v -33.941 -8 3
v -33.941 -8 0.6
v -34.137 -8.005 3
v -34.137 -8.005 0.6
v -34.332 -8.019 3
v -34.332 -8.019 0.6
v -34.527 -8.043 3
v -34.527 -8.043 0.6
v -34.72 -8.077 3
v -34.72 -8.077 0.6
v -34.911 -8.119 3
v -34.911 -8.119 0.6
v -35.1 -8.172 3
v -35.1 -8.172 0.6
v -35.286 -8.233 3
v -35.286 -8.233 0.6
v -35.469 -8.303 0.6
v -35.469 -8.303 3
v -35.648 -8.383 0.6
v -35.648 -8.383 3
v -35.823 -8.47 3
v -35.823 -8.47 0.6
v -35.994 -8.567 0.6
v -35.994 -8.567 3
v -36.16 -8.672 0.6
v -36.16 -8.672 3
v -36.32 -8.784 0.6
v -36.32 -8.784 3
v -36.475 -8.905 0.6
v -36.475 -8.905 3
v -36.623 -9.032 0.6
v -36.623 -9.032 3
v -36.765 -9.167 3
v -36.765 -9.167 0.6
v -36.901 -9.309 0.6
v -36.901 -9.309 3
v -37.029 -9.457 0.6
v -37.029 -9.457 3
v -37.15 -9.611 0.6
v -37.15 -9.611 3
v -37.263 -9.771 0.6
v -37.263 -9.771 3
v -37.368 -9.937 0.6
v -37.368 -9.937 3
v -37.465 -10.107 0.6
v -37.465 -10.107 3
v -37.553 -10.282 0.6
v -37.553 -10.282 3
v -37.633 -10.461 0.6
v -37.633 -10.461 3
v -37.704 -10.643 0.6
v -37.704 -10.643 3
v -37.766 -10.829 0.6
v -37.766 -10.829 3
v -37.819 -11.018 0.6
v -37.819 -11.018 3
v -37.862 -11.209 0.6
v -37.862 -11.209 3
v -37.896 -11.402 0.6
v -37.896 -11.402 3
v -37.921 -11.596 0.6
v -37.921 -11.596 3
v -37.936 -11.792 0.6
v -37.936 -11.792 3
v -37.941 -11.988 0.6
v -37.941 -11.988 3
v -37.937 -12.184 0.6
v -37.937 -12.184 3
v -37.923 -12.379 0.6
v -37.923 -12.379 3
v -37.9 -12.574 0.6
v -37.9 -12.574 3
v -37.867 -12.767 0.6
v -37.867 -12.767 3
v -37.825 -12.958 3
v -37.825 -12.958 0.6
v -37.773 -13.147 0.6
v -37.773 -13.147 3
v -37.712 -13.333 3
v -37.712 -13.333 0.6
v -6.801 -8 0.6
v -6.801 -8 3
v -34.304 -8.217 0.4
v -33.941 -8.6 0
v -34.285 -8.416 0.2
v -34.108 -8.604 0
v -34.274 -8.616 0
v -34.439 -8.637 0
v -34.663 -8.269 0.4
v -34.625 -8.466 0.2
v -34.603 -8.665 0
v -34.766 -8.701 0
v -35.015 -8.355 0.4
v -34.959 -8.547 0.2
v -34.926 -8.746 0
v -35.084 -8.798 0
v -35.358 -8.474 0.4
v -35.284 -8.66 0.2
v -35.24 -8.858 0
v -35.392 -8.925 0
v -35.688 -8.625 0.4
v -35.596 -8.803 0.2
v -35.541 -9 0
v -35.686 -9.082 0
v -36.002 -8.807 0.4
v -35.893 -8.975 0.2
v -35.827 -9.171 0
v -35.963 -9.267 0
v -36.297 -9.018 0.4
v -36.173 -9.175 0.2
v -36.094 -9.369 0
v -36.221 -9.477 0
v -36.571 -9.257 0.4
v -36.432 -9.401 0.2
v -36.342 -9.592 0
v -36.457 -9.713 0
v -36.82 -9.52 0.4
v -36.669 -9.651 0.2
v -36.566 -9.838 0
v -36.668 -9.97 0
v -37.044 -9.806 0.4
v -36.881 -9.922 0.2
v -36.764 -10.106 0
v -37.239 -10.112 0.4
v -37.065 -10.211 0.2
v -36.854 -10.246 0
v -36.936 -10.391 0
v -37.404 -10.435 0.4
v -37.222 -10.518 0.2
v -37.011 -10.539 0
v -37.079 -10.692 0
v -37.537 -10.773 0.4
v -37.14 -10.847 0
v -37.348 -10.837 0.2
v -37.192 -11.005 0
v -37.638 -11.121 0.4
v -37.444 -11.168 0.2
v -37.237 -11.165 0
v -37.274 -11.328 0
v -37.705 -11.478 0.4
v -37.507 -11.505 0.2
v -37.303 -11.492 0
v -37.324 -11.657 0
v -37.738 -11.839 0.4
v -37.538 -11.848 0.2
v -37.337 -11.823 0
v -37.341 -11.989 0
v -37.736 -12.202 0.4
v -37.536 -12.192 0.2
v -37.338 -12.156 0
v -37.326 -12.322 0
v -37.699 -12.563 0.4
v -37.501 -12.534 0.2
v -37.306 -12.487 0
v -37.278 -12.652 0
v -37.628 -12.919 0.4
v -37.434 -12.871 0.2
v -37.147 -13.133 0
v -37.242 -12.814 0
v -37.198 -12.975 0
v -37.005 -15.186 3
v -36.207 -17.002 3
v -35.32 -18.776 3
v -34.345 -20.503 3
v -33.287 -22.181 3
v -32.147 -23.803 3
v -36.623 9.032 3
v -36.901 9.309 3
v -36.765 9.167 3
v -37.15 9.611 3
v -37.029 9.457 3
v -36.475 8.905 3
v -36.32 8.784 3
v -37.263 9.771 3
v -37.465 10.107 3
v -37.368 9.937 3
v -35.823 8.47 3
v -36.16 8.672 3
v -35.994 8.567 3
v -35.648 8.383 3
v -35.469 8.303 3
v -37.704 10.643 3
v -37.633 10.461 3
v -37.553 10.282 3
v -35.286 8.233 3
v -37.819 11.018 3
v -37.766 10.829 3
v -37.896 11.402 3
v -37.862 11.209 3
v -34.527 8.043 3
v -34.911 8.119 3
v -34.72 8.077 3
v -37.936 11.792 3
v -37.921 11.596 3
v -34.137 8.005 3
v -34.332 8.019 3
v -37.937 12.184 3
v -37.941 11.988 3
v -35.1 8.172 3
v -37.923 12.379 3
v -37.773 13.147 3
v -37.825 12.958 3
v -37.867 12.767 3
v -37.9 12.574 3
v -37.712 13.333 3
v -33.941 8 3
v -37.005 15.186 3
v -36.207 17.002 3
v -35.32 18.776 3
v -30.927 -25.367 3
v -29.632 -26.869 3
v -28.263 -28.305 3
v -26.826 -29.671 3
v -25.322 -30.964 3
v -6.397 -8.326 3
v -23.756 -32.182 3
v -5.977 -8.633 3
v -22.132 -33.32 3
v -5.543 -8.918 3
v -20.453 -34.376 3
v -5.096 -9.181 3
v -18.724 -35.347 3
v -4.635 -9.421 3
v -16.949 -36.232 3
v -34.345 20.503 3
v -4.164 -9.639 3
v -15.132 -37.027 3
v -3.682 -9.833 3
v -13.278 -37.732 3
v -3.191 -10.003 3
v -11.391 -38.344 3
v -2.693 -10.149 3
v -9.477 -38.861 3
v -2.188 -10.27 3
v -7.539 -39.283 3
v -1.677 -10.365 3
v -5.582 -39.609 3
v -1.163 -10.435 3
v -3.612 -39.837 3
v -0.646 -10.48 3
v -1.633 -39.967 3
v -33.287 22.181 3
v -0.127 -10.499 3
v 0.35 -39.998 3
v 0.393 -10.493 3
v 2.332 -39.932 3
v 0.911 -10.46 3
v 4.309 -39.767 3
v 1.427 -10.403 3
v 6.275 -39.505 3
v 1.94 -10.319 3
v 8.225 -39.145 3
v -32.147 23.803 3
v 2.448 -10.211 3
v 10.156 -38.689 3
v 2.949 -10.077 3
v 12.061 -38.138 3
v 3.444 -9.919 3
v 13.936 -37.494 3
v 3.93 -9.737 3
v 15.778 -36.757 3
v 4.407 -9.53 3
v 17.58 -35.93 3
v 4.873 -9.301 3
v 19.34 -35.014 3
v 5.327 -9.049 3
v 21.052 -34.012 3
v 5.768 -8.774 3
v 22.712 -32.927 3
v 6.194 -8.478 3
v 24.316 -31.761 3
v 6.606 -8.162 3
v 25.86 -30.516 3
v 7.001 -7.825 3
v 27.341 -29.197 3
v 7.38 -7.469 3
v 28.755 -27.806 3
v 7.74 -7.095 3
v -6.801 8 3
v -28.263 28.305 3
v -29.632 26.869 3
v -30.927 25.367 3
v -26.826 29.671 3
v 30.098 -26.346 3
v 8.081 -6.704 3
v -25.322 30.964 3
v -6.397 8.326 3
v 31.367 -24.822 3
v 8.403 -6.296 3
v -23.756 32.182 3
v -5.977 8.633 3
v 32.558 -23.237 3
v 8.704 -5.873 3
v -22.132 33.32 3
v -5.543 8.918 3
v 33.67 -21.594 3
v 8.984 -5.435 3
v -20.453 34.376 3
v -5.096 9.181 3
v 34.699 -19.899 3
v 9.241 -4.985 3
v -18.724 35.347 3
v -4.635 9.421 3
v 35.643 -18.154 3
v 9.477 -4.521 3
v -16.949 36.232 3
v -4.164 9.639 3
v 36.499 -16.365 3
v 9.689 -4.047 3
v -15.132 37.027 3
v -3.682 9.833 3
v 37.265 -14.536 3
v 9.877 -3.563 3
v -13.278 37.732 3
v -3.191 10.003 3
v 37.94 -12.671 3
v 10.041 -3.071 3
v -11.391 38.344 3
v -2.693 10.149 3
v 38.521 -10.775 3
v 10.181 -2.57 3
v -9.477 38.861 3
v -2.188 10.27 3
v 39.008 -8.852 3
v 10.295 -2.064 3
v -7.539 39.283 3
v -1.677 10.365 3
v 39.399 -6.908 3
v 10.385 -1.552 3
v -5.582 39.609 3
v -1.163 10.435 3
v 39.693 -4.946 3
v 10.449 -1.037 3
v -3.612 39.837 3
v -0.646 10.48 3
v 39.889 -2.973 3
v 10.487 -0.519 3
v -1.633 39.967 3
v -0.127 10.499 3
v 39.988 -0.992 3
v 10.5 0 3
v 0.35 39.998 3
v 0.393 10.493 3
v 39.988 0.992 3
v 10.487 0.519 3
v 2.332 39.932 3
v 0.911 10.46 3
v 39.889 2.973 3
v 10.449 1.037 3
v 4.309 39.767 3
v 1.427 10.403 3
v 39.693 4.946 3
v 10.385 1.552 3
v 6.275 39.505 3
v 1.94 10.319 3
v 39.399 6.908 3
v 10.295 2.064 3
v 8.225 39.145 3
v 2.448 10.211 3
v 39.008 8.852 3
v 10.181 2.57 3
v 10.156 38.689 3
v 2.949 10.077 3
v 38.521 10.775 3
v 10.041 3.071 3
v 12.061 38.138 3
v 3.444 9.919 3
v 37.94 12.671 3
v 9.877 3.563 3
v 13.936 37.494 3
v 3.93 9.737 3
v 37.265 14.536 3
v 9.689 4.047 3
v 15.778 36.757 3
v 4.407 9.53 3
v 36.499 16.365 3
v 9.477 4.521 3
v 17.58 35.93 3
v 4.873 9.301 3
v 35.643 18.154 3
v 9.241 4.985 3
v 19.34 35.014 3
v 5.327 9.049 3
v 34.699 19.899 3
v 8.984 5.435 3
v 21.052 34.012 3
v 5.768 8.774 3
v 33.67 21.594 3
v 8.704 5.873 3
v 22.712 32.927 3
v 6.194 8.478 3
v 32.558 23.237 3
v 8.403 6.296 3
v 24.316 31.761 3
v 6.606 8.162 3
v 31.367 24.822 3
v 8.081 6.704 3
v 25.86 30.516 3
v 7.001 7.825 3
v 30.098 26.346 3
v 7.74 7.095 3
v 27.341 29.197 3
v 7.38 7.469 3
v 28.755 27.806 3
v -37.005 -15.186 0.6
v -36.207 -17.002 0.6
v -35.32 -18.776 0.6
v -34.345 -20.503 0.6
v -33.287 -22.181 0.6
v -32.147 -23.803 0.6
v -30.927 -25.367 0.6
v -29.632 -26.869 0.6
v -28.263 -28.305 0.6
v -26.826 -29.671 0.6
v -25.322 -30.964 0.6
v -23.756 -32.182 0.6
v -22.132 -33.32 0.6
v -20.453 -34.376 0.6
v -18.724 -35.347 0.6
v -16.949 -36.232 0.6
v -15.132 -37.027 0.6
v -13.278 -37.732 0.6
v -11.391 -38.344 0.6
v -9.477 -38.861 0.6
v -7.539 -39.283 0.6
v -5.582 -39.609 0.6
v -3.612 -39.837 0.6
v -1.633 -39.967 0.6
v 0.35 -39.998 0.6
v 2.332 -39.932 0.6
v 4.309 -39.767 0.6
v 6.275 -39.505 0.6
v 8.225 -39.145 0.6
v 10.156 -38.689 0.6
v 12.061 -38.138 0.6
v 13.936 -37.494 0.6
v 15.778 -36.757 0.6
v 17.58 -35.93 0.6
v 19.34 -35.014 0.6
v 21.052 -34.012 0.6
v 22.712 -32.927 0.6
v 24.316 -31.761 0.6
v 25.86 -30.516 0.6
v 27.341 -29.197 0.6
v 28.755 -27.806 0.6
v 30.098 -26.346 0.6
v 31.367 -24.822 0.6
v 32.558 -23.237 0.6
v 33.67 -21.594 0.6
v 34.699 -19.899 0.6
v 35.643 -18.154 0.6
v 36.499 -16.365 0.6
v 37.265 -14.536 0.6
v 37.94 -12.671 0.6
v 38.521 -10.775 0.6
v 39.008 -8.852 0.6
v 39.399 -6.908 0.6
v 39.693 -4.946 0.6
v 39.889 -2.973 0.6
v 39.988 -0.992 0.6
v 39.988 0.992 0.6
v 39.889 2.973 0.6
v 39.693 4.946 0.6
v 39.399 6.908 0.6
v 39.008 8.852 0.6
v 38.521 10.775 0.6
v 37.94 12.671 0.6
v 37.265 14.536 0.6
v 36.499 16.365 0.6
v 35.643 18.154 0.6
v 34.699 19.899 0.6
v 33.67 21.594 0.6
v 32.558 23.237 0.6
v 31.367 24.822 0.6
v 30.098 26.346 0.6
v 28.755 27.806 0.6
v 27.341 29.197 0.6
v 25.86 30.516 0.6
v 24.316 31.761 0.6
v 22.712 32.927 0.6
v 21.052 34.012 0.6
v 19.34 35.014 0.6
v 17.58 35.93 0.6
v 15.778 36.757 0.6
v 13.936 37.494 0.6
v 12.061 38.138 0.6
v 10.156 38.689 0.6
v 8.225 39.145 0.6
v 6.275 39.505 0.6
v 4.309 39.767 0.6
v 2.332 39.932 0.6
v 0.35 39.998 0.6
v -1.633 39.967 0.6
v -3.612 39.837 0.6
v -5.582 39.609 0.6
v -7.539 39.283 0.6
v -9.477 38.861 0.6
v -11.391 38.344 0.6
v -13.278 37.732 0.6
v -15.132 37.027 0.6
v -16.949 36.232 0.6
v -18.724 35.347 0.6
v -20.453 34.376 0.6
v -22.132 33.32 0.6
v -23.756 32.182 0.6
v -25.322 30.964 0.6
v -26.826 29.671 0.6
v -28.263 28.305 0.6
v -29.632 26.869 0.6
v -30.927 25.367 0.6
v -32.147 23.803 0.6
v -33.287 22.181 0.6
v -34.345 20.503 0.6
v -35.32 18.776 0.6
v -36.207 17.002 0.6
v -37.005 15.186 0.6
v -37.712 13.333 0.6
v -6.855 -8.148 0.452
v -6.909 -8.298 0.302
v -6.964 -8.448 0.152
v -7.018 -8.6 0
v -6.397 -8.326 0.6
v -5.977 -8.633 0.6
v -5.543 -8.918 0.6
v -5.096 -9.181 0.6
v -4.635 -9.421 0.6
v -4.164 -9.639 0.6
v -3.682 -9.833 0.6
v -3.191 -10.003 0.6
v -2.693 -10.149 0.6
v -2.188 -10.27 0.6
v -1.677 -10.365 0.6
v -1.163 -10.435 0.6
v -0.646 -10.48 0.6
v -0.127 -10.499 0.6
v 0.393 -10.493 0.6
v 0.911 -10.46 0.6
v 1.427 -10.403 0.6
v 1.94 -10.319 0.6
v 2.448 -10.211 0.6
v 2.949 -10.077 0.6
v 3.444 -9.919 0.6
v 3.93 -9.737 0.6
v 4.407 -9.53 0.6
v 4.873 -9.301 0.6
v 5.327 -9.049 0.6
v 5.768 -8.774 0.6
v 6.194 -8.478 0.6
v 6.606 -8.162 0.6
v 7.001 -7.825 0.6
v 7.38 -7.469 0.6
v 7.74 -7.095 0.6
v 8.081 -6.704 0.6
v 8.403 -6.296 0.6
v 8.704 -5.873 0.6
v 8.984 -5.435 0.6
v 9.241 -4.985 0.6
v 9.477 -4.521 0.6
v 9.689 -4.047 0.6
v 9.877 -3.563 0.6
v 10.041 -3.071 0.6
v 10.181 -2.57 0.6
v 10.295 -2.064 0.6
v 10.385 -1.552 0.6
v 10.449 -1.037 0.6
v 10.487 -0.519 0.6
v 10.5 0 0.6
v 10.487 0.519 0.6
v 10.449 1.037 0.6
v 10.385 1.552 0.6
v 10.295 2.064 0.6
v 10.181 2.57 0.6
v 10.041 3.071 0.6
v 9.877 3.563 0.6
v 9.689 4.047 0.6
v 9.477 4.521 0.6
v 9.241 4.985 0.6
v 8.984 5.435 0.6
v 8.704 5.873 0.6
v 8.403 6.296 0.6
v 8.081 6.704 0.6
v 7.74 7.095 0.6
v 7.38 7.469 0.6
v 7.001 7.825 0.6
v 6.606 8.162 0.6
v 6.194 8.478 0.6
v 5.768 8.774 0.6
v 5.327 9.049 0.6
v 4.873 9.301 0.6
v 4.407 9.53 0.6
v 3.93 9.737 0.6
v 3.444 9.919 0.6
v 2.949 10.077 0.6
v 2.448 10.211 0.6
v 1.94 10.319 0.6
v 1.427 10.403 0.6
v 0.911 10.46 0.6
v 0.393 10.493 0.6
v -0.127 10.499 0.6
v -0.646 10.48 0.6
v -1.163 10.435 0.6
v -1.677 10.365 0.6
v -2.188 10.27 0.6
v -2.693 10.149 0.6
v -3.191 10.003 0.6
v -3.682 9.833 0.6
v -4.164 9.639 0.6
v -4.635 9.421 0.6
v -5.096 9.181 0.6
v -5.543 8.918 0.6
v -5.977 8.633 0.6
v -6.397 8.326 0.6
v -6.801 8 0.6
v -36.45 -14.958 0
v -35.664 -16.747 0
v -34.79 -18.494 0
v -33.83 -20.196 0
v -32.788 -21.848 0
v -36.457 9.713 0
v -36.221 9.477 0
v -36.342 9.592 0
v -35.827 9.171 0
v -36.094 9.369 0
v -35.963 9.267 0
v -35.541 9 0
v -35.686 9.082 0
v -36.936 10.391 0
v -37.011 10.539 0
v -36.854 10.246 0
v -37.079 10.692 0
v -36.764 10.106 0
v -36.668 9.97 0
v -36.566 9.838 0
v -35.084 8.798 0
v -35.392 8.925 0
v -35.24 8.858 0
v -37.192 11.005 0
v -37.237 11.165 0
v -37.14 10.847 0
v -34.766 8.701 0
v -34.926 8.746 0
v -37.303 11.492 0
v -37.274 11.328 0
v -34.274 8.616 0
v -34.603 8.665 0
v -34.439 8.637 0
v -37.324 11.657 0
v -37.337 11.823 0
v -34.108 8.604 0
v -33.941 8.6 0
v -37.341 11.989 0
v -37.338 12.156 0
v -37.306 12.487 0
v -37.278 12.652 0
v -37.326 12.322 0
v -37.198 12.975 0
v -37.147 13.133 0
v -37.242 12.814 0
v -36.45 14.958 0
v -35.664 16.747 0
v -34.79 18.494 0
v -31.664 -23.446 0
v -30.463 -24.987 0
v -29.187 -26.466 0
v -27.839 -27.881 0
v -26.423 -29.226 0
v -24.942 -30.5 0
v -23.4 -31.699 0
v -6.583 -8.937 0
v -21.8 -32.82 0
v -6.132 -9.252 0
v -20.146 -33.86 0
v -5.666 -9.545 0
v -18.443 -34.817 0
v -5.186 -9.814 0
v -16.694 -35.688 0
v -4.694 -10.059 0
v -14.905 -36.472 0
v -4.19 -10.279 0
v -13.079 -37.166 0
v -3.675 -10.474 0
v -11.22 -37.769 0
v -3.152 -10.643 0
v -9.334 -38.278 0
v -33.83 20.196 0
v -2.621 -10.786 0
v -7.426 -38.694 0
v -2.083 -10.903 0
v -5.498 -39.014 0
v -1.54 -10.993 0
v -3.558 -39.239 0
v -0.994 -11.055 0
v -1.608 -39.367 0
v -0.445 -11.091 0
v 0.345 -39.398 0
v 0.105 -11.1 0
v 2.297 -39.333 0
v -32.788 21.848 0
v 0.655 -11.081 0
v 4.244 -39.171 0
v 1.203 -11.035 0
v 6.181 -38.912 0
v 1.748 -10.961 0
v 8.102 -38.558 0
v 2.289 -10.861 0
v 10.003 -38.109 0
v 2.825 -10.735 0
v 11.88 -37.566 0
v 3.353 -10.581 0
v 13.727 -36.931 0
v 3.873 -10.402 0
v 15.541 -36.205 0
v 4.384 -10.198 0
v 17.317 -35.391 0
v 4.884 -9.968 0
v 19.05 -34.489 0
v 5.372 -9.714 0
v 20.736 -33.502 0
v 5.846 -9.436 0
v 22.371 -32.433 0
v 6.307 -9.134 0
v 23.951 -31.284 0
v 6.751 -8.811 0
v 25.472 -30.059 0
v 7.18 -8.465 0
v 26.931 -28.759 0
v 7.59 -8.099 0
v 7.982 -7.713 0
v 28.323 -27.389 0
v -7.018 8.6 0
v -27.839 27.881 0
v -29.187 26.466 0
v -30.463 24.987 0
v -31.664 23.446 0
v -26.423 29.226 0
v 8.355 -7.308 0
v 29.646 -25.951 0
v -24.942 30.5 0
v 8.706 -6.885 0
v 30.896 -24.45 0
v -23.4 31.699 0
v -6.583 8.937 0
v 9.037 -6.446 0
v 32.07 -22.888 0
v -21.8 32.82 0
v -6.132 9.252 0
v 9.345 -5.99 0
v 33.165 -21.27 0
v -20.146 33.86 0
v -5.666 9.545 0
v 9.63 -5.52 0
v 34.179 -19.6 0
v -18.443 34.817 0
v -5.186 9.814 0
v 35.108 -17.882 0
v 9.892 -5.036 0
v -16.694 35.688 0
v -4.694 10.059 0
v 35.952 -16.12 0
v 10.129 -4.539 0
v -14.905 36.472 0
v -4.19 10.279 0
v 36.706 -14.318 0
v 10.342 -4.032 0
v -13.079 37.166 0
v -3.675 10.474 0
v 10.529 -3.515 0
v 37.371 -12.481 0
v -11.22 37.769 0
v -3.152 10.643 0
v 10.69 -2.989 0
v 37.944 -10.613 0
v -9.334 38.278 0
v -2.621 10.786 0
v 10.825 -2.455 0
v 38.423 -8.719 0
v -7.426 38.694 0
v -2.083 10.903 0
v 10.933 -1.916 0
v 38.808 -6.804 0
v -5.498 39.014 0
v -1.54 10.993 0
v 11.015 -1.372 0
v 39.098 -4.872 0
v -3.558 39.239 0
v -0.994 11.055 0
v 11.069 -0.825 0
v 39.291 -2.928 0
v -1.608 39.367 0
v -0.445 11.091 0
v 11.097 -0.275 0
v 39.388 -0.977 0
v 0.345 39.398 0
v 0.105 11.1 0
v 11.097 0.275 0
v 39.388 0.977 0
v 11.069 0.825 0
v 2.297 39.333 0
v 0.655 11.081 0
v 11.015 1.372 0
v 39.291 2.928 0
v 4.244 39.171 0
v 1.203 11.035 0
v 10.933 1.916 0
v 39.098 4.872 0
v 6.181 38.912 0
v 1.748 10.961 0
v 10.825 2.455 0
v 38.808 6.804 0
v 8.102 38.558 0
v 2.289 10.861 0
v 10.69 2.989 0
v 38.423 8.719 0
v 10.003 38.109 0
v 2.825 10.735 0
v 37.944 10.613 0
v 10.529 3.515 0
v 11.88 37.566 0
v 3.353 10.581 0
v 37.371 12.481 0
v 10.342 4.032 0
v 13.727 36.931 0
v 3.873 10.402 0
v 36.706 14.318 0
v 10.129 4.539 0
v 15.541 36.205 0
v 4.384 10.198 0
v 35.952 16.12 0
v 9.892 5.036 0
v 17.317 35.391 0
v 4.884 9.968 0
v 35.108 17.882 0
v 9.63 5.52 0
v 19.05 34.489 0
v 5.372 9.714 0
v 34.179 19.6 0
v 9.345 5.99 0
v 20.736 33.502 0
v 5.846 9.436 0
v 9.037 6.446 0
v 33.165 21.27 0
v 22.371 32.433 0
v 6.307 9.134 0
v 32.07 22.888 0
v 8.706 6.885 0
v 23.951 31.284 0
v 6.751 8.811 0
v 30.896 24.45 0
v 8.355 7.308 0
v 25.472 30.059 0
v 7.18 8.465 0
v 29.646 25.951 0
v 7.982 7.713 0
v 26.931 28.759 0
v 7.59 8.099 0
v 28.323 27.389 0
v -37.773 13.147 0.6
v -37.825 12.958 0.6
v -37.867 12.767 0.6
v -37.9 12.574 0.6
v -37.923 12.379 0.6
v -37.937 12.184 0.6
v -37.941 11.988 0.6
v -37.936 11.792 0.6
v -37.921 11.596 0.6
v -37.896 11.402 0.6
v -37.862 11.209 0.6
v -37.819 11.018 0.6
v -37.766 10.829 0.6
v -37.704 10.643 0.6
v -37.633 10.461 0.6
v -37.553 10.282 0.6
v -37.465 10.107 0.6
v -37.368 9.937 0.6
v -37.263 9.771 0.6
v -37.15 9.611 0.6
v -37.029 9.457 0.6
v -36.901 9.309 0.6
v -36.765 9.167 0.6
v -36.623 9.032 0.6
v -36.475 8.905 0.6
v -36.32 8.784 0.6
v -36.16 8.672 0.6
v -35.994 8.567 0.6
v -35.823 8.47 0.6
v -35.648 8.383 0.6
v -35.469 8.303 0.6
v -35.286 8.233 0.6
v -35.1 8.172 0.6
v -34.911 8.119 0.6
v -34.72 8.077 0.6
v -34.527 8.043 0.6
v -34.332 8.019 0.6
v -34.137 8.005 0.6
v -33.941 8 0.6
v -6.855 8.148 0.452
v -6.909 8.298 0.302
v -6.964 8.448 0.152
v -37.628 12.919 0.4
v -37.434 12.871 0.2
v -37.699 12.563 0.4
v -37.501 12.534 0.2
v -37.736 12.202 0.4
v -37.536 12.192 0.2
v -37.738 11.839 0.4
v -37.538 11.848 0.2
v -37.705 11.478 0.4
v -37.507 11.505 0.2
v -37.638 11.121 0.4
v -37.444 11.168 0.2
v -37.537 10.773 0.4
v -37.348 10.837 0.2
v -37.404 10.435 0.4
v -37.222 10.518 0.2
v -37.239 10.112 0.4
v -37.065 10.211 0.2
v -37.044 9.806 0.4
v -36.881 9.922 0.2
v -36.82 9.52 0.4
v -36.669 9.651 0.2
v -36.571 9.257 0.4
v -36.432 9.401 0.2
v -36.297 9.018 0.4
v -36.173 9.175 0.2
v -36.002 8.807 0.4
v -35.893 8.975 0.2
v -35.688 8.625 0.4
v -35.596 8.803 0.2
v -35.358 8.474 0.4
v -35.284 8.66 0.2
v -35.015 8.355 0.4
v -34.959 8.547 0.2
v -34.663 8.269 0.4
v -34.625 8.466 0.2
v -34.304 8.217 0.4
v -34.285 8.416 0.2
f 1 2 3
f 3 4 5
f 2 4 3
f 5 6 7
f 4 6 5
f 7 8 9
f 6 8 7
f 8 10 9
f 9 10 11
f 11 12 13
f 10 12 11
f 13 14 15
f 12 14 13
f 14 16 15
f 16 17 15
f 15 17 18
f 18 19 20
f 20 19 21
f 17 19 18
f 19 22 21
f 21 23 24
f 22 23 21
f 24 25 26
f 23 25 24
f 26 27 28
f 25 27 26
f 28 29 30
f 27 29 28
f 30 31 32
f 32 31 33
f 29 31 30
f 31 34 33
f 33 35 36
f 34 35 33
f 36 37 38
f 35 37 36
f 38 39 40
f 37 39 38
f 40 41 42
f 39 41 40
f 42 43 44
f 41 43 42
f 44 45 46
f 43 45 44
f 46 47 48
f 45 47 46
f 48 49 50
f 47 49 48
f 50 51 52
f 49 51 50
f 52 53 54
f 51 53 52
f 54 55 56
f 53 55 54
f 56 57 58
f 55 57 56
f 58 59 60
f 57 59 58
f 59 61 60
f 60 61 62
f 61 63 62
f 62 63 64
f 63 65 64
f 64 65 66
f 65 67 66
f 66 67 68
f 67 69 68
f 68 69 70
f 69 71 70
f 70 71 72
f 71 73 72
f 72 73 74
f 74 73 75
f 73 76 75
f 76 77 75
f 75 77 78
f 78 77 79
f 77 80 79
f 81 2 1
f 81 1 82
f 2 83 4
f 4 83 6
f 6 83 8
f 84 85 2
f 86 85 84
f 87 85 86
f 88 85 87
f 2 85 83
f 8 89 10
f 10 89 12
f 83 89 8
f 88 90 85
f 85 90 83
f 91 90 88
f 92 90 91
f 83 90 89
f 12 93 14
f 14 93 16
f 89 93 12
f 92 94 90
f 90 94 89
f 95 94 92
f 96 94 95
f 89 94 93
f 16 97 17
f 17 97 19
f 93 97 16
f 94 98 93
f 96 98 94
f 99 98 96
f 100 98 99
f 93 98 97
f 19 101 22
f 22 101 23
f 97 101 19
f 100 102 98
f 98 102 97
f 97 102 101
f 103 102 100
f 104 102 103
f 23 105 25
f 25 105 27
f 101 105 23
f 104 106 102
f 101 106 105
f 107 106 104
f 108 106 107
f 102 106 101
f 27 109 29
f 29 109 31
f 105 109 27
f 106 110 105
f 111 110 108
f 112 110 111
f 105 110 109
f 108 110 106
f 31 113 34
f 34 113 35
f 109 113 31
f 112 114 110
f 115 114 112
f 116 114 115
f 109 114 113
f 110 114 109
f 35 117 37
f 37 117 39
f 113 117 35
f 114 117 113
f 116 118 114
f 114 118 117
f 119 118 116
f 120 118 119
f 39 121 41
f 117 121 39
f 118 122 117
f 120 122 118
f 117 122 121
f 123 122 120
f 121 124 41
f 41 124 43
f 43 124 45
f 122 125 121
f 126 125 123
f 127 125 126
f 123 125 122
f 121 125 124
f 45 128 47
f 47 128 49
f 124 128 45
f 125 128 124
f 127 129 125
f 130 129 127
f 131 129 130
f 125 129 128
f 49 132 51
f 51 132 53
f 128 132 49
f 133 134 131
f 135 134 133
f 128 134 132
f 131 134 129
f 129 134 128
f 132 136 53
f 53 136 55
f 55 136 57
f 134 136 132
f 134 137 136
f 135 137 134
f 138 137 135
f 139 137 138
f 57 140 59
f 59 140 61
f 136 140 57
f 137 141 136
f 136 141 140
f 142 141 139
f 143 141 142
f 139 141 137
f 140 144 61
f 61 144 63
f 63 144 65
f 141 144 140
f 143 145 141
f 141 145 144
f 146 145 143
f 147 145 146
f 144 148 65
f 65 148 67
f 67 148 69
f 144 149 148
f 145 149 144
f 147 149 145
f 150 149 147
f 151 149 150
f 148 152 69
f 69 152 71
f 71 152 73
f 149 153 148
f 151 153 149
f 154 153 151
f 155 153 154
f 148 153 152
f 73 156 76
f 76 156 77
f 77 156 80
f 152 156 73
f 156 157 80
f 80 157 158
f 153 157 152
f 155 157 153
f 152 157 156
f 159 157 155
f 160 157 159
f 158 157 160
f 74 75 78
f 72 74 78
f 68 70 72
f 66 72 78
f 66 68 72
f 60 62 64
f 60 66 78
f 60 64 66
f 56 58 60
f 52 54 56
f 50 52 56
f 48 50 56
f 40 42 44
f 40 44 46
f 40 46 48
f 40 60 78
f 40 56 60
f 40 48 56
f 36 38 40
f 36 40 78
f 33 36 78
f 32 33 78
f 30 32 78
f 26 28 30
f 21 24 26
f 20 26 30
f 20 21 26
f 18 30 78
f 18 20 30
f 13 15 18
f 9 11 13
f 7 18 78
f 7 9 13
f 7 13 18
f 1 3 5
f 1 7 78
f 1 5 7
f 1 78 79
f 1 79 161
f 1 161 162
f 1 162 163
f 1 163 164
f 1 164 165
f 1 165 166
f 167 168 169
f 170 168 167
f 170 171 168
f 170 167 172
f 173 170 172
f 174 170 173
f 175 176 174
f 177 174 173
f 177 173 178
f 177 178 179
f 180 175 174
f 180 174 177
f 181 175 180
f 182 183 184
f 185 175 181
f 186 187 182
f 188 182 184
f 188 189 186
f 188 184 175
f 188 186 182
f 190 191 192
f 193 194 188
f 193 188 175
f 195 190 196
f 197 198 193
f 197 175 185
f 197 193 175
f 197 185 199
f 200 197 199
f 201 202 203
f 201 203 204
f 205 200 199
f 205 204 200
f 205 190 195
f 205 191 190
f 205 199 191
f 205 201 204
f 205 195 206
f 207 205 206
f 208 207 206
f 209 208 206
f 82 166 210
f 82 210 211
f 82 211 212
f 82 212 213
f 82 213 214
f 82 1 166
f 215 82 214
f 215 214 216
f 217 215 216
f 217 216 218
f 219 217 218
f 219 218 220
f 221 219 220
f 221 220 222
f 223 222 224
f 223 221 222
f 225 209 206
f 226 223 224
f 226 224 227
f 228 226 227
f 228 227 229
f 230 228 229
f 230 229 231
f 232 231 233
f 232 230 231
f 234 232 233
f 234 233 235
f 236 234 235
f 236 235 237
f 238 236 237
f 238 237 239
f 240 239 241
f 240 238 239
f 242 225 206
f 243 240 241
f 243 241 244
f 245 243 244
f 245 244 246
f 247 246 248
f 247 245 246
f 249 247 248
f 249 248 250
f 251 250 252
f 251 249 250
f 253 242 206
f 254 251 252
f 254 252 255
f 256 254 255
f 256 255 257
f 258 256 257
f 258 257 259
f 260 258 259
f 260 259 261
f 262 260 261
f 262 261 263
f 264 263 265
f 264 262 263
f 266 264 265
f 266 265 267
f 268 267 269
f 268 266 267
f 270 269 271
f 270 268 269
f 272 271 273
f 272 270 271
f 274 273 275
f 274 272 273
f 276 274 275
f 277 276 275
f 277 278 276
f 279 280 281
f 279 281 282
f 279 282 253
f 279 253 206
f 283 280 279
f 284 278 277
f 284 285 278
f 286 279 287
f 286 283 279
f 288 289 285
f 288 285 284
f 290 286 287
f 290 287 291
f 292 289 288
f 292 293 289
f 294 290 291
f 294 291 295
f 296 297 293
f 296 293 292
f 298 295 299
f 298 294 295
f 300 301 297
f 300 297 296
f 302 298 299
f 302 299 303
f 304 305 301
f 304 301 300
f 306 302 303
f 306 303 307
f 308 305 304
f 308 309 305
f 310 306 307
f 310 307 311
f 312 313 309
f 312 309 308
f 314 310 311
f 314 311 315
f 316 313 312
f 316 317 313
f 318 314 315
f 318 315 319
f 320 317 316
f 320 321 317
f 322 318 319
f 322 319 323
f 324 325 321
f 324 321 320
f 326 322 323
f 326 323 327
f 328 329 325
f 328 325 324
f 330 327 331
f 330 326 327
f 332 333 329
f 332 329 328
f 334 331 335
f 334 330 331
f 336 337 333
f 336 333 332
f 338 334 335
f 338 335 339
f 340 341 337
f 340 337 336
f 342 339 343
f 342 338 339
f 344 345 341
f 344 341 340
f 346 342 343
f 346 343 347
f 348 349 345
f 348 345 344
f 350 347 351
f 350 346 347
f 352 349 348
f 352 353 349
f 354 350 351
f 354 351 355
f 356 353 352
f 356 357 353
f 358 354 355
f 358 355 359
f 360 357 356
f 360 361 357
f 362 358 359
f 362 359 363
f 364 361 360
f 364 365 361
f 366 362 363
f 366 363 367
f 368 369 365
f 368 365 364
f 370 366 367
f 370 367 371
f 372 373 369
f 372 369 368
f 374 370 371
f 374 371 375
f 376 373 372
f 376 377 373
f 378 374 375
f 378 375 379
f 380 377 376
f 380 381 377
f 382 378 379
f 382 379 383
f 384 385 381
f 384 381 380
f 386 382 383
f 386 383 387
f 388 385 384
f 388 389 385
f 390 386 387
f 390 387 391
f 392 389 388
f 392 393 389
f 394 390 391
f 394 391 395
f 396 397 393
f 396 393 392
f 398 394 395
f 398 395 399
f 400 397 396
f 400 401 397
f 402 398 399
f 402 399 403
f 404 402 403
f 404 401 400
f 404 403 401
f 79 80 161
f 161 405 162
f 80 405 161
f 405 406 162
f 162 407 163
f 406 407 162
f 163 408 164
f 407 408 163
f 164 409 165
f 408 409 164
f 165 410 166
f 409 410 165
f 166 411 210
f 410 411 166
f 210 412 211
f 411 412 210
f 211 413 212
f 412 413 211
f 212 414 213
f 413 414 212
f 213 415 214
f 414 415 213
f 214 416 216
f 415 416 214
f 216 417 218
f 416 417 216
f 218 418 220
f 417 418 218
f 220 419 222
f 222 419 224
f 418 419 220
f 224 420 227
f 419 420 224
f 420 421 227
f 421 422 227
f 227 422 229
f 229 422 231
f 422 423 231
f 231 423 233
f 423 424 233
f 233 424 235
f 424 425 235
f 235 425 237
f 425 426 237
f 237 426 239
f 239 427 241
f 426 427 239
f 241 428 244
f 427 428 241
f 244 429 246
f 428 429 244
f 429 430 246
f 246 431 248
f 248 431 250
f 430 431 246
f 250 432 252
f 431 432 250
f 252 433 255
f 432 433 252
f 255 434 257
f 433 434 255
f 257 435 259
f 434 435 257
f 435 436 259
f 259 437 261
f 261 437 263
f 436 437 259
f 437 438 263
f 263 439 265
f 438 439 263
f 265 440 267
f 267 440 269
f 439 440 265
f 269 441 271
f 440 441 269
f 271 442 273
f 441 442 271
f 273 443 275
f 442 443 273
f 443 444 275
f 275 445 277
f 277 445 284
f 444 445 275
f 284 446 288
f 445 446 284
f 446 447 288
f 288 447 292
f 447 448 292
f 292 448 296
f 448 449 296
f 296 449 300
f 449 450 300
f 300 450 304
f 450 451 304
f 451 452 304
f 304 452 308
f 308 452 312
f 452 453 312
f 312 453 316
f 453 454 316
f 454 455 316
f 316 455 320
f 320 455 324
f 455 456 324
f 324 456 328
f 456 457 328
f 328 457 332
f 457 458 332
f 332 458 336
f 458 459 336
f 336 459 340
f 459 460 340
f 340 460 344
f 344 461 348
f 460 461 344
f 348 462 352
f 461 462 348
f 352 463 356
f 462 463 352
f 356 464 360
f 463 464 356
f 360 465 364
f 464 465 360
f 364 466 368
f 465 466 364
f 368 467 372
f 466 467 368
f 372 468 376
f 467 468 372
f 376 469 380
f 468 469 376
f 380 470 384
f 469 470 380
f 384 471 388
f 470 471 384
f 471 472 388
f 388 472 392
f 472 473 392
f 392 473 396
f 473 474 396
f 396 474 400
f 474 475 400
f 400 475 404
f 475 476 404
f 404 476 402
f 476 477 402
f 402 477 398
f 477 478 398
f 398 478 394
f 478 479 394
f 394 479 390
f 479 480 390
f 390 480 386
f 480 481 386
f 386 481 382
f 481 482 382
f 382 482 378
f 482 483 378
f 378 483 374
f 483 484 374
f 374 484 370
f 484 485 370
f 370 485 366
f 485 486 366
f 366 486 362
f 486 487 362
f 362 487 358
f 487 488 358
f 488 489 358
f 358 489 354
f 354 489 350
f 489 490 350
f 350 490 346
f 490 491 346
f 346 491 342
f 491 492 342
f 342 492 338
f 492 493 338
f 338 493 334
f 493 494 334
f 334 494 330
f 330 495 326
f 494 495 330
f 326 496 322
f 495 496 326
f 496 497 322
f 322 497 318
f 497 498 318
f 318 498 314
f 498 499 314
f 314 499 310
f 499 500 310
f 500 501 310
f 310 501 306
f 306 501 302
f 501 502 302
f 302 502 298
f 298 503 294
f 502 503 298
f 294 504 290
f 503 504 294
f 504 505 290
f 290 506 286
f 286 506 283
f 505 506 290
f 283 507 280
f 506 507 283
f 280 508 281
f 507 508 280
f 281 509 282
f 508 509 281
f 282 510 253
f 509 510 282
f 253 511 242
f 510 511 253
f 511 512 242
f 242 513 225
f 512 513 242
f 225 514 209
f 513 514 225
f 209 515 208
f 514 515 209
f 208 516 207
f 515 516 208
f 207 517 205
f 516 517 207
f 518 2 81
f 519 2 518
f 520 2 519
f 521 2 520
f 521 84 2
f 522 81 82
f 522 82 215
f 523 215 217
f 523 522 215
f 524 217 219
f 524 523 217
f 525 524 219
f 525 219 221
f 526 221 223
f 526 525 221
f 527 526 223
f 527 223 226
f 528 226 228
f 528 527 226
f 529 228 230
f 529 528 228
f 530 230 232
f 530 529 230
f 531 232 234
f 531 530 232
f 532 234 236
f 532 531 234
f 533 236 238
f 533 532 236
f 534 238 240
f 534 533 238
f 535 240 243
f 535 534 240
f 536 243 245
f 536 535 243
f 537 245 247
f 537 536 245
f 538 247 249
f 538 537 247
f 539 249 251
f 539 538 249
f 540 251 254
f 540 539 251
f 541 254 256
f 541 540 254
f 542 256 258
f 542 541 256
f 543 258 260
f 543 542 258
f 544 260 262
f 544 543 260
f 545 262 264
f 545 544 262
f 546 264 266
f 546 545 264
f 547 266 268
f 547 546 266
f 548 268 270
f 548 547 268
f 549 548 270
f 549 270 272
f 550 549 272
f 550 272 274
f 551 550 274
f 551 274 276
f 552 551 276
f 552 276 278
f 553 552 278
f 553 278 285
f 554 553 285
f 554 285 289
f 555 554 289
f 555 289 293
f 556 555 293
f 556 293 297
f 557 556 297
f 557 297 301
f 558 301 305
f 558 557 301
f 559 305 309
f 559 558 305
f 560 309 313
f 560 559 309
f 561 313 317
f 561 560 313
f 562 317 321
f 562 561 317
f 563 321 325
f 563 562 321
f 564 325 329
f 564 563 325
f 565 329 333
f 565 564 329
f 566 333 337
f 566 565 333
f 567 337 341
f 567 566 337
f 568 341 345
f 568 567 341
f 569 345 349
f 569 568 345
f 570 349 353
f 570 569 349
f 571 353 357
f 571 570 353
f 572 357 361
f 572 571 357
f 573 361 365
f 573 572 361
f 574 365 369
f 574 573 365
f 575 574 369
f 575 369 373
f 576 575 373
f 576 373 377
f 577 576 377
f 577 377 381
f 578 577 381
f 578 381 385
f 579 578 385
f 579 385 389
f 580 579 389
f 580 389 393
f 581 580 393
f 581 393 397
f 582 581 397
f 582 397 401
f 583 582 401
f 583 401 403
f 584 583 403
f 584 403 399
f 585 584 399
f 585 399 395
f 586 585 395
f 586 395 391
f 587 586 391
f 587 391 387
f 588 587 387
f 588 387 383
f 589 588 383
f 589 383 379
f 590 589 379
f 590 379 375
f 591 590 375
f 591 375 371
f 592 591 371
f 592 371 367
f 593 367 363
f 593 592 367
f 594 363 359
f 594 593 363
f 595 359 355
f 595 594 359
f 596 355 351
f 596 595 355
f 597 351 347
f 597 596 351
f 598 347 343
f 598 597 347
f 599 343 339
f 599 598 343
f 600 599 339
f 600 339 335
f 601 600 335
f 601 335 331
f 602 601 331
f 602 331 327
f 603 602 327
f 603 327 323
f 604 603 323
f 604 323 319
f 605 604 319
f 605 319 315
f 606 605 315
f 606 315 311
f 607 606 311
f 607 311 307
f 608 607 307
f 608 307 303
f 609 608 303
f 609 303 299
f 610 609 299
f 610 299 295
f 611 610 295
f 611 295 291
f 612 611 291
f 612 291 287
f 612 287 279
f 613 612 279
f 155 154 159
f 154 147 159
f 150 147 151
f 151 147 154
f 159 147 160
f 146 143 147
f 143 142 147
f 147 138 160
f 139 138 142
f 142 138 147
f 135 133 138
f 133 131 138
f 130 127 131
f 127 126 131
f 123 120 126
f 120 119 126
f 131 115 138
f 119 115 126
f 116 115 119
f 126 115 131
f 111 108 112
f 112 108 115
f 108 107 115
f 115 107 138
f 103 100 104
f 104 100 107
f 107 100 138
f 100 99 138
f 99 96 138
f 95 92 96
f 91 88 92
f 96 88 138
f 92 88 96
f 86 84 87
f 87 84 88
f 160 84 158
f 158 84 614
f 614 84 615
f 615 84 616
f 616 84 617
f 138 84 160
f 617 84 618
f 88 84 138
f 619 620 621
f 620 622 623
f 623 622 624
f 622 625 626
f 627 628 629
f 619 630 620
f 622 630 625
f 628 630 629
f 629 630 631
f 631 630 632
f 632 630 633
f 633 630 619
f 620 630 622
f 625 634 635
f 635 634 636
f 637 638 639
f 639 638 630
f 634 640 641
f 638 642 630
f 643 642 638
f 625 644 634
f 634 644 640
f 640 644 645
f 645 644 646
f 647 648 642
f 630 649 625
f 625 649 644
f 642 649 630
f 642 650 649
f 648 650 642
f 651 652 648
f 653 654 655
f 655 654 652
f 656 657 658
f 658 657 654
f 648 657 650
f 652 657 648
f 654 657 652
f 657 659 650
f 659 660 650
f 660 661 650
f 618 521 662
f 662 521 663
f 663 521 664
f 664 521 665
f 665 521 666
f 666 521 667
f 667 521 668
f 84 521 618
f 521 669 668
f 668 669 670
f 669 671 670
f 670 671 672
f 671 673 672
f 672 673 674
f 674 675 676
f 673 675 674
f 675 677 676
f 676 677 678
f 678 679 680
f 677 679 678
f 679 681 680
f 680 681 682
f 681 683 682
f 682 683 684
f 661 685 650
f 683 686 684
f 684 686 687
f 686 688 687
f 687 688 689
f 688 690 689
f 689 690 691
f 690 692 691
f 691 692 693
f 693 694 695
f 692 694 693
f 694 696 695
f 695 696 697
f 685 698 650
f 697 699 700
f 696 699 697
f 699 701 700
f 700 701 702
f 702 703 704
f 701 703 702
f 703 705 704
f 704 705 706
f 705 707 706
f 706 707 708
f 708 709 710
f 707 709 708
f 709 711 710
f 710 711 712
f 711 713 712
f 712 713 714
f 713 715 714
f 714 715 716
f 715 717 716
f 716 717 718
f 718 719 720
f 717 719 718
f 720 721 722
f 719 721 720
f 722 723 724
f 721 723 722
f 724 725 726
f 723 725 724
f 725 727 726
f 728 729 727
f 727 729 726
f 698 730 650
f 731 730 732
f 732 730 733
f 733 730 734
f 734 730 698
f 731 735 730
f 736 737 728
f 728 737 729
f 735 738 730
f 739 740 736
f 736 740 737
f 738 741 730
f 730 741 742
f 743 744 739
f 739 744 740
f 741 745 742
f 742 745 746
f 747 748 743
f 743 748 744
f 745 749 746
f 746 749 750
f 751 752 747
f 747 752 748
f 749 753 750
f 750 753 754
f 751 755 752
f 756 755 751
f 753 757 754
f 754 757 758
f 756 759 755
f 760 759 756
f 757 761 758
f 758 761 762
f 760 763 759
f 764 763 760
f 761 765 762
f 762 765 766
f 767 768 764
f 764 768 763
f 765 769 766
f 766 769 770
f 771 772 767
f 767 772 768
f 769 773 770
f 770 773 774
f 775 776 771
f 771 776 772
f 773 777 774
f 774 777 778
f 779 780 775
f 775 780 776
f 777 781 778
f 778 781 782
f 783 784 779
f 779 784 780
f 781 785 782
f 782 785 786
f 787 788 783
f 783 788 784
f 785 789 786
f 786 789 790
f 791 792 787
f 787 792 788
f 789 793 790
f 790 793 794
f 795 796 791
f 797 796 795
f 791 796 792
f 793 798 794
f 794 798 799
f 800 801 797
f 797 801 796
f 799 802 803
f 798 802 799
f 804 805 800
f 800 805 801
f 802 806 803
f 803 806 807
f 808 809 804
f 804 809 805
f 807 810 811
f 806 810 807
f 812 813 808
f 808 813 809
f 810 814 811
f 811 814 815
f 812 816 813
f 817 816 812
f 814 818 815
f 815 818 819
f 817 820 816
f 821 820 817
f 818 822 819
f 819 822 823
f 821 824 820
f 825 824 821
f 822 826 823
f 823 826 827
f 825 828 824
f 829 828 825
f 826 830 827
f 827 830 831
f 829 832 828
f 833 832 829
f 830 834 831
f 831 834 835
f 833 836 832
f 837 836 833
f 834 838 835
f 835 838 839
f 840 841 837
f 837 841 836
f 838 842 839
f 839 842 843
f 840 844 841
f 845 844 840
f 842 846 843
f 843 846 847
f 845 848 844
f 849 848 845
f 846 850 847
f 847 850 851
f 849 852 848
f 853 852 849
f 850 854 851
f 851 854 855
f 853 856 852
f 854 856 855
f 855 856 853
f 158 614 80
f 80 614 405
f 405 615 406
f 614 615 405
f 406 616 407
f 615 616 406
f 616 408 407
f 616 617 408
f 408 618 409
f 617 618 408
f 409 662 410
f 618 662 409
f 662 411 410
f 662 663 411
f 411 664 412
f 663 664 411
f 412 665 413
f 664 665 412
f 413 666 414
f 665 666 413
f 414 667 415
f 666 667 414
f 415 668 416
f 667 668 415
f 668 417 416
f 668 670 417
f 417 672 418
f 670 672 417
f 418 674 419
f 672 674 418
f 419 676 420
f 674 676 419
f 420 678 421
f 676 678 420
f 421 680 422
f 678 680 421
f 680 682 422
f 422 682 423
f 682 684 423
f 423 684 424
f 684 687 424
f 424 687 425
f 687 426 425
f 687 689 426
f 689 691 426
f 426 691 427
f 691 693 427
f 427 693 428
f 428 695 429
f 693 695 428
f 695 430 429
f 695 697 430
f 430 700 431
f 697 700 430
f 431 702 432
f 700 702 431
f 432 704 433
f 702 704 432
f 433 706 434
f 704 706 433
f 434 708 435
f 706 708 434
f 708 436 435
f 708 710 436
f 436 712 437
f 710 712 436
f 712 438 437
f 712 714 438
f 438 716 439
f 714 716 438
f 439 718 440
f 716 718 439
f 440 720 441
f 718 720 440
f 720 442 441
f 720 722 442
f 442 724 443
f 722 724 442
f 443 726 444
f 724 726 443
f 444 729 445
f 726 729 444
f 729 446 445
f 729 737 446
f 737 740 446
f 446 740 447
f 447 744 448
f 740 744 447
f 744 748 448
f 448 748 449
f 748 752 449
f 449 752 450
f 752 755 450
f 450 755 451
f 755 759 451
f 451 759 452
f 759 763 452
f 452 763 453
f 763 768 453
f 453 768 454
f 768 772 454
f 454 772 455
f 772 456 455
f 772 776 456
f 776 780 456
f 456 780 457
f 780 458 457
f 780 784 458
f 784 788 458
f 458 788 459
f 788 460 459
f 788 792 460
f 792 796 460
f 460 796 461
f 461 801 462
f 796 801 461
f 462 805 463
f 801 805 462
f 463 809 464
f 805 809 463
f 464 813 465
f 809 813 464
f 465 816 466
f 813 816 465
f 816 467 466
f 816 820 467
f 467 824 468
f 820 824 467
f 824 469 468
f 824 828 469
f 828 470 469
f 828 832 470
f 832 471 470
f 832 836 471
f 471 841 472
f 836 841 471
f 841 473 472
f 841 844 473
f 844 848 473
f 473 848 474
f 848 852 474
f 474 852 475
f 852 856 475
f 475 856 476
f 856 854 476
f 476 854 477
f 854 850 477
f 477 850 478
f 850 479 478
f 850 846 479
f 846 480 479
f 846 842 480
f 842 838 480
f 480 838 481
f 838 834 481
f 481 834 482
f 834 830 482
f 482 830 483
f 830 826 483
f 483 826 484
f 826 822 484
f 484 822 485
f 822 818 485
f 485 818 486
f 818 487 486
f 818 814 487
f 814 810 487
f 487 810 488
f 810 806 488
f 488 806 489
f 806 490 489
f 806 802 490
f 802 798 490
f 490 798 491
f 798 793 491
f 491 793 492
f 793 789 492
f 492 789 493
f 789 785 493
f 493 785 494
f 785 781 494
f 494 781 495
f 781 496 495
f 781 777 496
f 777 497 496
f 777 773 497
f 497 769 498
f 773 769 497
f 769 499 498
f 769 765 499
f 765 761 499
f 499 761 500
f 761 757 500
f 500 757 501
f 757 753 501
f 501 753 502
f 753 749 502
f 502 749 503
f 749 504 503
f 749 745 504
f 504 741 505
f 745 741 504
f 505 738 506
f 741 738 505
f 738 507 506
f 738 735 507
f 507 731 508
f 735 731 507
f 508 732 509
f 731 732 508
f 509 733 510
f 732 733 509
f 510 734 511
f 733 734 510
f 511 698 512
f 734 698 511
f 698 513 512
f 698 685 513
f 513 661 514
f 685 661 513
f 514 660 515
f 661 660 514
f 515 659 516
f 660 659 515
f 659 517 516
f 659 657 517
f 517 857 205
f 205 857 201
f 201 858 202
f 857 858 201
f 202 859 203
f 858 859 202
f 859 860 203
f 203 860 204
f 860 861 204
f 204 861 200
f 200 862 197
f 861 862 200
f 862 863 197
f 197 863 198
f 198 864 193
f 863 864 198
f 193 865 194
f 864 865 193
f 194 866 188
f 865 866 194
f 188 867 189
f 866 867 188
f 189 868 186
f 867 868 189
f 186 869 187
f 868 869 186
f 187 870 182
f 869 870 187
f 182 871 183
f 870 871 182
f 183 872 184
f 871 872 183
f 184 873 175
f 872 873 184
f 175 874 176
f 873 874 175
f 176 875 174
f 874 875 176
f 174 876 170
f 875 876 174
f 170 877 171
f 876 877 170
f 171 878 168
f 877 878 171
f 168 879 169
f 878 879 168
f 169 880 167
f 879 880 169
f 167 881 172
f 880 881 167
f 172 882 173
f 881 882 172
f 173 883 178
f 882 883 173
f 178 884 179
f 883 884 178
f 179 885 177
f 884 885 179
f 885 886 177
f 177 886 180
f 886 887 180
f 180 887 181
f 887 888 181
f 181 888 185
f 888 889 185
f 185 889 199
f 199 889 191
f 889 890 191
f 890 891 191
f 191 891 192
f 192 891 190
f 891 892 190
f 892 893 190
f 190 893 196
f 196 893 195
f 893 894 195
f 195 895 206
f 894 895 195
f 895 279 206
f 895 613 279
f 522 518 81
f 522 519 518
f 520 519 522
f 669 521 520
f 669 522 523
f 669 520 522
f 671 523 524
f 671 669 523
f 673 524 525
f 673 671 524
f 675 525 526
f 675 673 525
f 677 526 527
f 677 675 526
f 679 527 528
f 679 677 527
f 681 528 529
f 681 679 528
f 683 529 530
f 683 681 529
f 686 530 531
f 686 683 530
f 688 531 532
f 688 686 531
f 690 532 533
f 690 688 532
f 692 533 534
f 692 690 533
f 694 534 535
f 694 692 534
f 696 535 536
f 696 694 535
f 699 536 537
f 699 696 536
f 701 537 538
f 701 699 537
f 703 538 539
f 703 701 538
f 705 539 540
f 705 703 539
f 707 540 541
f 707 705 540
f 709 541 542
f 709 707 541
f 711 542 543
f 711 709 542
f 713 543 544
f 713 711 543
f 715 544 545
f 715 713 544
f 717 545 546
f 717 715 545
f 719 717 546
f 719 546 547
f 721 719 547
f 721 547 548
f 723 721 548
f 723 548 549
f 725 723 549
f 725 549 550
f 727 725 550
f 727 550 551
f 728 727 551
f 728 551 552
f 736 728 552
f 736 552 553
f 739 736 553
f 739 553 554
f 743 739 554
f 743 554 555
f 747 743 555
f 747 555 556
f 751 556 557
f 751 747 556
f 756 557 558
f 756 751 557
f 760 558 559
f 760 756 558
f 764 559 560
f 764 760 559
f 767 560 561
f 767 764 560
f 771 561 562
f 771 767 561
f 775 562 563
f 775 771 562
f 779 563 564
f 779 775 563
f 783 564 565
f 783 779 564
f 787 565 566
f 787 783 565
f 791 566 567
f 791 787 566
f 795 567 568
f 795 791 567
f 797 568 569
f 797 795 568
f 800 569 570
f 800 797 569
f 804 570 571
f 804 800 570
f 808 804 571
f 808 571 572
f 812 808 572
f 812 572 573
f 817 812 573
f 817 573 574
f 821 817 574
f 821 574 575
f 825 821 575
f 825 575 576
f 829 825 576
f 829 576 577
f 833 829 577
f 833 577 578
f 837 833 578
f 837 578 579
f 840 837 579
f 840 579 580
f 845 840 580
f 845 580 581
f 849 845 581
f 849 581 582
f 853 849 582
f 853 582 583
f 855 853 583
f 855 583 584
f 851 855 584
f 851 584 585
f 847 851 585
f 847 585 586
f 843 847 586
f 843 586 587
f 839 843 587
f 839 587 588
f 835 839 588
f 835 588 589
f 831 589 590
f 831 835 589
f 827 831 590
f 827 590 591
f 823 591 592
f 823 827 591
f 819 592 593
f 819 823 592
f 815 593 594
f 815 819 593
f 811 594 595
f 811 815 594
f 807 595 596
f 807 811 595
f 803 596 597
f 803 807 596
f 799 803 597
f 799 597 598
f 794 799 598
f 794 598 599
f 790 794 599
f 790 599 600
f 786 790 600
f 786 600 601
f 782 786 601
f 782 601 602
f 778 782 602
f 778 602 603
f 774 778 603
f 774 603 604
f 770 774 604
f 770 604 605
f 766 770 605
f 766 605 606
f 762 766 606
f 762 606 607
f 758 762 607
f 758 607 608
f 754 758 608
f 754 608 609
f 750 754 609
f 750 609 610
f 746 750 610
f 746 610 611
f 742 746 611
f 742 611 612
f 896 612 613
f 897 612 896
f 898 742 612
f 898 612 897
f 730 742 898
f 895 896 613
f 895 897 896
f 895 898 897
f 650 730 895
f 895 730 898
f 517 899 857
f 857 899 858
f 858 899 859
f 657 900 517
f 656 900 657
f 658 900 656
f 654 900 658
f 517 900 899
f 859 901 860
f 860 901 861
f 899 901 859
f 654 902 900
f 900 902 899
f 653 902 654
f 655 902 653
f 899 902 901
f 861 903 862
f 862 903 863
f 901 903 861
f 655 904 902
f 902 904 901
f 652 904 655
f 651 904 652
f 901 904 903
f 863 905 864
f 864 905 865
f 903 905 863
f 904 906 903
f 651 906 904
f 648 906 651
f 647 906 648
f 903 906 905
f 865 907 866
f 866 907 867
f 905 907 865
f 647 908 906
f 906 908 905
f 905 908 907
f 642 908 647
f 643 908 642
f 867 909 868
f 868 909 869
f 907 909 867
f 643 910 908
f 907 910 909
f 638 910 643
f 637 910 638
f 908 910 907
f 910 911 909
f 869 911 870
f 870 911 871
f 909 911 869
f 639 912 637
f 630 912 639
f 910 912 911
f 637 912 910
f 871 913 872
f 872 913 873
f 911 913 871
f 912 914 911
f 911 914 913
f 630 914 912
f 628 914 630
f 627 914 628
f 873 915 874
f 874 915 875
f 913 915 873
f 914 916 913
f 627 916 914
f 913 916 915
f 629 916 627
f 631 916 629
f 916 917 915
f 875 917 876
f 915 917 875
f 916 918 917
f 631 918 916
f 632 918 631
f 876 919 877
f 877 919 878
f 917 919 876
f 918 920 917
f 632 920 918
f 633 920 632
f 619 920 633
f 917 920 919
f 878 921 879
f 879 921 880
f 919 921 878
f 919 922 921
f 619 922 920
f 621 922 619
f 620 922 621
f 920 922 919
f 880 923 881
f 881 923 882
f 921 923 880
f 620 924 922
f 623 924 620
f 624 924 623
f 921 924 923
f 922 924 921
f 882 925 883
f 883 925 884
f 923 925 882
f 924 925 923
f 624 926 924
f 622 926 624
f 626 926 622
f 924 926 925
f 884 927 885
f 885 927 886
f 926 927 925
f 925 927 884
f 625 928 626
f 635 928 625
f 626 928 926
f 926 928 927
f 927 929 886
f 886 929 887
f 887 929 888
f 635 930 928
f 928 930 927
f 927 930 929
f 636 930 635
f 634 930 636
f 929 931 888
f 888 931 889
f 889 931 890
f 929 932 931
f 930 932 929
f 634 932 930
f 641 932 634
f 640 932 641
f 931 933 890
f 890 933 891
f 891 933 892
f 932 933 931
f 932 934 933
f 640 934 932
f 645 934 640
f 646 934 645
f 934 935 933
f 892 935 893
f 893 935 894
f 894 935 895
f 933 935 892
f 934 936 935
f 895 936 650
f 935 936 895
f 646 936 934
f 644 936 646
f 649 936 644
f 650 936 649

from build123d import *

# Parameters (mm, degrees)
PAD_DEPTH    = 3
CHAMFER_SIZE = 0.6


with BuildPart() as part:
    # Sketch → Pad (new body)
    with BuildSketch(Plane.XY):
        with BuildLine():
            ThreePointArc((-37.712362, -13.333333), (40, 0), (-37.712362, 13.333333))
            ThreePointArc((-37.712362, 13.333333), (-37.207112, 9.690599), (-33.941125, 8))
            Line((-33.941125, 8), (-6.800735, 8))
            ThreePointArc((-6.800735, -8), (10.5, 0), (-6.800735, 8))
            Line((-33.941125, -8), (-6.800735, -8))
            ThreePointArc((-33.941125, -8), (-37.207112, -9.690599), (-37.712362, -13.333333))
        make_face()
    extrude(amount=PAD_DEPTH)

    # Chamfer
    chamfer_edges = [part.edges().sort_by_distance(p)[0] for p in [
        (-37.207112, -9.690599, 0),
        (40, 0, 0),
        (-37.207112, 9.690599, 0),
        (-20.37093, 8, 0),
        (10.5, 0, 0),
        (-20.37093, -8, 0),
    ]]
    chamfer(chamfer_edges, length=CHAMFER_SIZE)


solid = part.part
